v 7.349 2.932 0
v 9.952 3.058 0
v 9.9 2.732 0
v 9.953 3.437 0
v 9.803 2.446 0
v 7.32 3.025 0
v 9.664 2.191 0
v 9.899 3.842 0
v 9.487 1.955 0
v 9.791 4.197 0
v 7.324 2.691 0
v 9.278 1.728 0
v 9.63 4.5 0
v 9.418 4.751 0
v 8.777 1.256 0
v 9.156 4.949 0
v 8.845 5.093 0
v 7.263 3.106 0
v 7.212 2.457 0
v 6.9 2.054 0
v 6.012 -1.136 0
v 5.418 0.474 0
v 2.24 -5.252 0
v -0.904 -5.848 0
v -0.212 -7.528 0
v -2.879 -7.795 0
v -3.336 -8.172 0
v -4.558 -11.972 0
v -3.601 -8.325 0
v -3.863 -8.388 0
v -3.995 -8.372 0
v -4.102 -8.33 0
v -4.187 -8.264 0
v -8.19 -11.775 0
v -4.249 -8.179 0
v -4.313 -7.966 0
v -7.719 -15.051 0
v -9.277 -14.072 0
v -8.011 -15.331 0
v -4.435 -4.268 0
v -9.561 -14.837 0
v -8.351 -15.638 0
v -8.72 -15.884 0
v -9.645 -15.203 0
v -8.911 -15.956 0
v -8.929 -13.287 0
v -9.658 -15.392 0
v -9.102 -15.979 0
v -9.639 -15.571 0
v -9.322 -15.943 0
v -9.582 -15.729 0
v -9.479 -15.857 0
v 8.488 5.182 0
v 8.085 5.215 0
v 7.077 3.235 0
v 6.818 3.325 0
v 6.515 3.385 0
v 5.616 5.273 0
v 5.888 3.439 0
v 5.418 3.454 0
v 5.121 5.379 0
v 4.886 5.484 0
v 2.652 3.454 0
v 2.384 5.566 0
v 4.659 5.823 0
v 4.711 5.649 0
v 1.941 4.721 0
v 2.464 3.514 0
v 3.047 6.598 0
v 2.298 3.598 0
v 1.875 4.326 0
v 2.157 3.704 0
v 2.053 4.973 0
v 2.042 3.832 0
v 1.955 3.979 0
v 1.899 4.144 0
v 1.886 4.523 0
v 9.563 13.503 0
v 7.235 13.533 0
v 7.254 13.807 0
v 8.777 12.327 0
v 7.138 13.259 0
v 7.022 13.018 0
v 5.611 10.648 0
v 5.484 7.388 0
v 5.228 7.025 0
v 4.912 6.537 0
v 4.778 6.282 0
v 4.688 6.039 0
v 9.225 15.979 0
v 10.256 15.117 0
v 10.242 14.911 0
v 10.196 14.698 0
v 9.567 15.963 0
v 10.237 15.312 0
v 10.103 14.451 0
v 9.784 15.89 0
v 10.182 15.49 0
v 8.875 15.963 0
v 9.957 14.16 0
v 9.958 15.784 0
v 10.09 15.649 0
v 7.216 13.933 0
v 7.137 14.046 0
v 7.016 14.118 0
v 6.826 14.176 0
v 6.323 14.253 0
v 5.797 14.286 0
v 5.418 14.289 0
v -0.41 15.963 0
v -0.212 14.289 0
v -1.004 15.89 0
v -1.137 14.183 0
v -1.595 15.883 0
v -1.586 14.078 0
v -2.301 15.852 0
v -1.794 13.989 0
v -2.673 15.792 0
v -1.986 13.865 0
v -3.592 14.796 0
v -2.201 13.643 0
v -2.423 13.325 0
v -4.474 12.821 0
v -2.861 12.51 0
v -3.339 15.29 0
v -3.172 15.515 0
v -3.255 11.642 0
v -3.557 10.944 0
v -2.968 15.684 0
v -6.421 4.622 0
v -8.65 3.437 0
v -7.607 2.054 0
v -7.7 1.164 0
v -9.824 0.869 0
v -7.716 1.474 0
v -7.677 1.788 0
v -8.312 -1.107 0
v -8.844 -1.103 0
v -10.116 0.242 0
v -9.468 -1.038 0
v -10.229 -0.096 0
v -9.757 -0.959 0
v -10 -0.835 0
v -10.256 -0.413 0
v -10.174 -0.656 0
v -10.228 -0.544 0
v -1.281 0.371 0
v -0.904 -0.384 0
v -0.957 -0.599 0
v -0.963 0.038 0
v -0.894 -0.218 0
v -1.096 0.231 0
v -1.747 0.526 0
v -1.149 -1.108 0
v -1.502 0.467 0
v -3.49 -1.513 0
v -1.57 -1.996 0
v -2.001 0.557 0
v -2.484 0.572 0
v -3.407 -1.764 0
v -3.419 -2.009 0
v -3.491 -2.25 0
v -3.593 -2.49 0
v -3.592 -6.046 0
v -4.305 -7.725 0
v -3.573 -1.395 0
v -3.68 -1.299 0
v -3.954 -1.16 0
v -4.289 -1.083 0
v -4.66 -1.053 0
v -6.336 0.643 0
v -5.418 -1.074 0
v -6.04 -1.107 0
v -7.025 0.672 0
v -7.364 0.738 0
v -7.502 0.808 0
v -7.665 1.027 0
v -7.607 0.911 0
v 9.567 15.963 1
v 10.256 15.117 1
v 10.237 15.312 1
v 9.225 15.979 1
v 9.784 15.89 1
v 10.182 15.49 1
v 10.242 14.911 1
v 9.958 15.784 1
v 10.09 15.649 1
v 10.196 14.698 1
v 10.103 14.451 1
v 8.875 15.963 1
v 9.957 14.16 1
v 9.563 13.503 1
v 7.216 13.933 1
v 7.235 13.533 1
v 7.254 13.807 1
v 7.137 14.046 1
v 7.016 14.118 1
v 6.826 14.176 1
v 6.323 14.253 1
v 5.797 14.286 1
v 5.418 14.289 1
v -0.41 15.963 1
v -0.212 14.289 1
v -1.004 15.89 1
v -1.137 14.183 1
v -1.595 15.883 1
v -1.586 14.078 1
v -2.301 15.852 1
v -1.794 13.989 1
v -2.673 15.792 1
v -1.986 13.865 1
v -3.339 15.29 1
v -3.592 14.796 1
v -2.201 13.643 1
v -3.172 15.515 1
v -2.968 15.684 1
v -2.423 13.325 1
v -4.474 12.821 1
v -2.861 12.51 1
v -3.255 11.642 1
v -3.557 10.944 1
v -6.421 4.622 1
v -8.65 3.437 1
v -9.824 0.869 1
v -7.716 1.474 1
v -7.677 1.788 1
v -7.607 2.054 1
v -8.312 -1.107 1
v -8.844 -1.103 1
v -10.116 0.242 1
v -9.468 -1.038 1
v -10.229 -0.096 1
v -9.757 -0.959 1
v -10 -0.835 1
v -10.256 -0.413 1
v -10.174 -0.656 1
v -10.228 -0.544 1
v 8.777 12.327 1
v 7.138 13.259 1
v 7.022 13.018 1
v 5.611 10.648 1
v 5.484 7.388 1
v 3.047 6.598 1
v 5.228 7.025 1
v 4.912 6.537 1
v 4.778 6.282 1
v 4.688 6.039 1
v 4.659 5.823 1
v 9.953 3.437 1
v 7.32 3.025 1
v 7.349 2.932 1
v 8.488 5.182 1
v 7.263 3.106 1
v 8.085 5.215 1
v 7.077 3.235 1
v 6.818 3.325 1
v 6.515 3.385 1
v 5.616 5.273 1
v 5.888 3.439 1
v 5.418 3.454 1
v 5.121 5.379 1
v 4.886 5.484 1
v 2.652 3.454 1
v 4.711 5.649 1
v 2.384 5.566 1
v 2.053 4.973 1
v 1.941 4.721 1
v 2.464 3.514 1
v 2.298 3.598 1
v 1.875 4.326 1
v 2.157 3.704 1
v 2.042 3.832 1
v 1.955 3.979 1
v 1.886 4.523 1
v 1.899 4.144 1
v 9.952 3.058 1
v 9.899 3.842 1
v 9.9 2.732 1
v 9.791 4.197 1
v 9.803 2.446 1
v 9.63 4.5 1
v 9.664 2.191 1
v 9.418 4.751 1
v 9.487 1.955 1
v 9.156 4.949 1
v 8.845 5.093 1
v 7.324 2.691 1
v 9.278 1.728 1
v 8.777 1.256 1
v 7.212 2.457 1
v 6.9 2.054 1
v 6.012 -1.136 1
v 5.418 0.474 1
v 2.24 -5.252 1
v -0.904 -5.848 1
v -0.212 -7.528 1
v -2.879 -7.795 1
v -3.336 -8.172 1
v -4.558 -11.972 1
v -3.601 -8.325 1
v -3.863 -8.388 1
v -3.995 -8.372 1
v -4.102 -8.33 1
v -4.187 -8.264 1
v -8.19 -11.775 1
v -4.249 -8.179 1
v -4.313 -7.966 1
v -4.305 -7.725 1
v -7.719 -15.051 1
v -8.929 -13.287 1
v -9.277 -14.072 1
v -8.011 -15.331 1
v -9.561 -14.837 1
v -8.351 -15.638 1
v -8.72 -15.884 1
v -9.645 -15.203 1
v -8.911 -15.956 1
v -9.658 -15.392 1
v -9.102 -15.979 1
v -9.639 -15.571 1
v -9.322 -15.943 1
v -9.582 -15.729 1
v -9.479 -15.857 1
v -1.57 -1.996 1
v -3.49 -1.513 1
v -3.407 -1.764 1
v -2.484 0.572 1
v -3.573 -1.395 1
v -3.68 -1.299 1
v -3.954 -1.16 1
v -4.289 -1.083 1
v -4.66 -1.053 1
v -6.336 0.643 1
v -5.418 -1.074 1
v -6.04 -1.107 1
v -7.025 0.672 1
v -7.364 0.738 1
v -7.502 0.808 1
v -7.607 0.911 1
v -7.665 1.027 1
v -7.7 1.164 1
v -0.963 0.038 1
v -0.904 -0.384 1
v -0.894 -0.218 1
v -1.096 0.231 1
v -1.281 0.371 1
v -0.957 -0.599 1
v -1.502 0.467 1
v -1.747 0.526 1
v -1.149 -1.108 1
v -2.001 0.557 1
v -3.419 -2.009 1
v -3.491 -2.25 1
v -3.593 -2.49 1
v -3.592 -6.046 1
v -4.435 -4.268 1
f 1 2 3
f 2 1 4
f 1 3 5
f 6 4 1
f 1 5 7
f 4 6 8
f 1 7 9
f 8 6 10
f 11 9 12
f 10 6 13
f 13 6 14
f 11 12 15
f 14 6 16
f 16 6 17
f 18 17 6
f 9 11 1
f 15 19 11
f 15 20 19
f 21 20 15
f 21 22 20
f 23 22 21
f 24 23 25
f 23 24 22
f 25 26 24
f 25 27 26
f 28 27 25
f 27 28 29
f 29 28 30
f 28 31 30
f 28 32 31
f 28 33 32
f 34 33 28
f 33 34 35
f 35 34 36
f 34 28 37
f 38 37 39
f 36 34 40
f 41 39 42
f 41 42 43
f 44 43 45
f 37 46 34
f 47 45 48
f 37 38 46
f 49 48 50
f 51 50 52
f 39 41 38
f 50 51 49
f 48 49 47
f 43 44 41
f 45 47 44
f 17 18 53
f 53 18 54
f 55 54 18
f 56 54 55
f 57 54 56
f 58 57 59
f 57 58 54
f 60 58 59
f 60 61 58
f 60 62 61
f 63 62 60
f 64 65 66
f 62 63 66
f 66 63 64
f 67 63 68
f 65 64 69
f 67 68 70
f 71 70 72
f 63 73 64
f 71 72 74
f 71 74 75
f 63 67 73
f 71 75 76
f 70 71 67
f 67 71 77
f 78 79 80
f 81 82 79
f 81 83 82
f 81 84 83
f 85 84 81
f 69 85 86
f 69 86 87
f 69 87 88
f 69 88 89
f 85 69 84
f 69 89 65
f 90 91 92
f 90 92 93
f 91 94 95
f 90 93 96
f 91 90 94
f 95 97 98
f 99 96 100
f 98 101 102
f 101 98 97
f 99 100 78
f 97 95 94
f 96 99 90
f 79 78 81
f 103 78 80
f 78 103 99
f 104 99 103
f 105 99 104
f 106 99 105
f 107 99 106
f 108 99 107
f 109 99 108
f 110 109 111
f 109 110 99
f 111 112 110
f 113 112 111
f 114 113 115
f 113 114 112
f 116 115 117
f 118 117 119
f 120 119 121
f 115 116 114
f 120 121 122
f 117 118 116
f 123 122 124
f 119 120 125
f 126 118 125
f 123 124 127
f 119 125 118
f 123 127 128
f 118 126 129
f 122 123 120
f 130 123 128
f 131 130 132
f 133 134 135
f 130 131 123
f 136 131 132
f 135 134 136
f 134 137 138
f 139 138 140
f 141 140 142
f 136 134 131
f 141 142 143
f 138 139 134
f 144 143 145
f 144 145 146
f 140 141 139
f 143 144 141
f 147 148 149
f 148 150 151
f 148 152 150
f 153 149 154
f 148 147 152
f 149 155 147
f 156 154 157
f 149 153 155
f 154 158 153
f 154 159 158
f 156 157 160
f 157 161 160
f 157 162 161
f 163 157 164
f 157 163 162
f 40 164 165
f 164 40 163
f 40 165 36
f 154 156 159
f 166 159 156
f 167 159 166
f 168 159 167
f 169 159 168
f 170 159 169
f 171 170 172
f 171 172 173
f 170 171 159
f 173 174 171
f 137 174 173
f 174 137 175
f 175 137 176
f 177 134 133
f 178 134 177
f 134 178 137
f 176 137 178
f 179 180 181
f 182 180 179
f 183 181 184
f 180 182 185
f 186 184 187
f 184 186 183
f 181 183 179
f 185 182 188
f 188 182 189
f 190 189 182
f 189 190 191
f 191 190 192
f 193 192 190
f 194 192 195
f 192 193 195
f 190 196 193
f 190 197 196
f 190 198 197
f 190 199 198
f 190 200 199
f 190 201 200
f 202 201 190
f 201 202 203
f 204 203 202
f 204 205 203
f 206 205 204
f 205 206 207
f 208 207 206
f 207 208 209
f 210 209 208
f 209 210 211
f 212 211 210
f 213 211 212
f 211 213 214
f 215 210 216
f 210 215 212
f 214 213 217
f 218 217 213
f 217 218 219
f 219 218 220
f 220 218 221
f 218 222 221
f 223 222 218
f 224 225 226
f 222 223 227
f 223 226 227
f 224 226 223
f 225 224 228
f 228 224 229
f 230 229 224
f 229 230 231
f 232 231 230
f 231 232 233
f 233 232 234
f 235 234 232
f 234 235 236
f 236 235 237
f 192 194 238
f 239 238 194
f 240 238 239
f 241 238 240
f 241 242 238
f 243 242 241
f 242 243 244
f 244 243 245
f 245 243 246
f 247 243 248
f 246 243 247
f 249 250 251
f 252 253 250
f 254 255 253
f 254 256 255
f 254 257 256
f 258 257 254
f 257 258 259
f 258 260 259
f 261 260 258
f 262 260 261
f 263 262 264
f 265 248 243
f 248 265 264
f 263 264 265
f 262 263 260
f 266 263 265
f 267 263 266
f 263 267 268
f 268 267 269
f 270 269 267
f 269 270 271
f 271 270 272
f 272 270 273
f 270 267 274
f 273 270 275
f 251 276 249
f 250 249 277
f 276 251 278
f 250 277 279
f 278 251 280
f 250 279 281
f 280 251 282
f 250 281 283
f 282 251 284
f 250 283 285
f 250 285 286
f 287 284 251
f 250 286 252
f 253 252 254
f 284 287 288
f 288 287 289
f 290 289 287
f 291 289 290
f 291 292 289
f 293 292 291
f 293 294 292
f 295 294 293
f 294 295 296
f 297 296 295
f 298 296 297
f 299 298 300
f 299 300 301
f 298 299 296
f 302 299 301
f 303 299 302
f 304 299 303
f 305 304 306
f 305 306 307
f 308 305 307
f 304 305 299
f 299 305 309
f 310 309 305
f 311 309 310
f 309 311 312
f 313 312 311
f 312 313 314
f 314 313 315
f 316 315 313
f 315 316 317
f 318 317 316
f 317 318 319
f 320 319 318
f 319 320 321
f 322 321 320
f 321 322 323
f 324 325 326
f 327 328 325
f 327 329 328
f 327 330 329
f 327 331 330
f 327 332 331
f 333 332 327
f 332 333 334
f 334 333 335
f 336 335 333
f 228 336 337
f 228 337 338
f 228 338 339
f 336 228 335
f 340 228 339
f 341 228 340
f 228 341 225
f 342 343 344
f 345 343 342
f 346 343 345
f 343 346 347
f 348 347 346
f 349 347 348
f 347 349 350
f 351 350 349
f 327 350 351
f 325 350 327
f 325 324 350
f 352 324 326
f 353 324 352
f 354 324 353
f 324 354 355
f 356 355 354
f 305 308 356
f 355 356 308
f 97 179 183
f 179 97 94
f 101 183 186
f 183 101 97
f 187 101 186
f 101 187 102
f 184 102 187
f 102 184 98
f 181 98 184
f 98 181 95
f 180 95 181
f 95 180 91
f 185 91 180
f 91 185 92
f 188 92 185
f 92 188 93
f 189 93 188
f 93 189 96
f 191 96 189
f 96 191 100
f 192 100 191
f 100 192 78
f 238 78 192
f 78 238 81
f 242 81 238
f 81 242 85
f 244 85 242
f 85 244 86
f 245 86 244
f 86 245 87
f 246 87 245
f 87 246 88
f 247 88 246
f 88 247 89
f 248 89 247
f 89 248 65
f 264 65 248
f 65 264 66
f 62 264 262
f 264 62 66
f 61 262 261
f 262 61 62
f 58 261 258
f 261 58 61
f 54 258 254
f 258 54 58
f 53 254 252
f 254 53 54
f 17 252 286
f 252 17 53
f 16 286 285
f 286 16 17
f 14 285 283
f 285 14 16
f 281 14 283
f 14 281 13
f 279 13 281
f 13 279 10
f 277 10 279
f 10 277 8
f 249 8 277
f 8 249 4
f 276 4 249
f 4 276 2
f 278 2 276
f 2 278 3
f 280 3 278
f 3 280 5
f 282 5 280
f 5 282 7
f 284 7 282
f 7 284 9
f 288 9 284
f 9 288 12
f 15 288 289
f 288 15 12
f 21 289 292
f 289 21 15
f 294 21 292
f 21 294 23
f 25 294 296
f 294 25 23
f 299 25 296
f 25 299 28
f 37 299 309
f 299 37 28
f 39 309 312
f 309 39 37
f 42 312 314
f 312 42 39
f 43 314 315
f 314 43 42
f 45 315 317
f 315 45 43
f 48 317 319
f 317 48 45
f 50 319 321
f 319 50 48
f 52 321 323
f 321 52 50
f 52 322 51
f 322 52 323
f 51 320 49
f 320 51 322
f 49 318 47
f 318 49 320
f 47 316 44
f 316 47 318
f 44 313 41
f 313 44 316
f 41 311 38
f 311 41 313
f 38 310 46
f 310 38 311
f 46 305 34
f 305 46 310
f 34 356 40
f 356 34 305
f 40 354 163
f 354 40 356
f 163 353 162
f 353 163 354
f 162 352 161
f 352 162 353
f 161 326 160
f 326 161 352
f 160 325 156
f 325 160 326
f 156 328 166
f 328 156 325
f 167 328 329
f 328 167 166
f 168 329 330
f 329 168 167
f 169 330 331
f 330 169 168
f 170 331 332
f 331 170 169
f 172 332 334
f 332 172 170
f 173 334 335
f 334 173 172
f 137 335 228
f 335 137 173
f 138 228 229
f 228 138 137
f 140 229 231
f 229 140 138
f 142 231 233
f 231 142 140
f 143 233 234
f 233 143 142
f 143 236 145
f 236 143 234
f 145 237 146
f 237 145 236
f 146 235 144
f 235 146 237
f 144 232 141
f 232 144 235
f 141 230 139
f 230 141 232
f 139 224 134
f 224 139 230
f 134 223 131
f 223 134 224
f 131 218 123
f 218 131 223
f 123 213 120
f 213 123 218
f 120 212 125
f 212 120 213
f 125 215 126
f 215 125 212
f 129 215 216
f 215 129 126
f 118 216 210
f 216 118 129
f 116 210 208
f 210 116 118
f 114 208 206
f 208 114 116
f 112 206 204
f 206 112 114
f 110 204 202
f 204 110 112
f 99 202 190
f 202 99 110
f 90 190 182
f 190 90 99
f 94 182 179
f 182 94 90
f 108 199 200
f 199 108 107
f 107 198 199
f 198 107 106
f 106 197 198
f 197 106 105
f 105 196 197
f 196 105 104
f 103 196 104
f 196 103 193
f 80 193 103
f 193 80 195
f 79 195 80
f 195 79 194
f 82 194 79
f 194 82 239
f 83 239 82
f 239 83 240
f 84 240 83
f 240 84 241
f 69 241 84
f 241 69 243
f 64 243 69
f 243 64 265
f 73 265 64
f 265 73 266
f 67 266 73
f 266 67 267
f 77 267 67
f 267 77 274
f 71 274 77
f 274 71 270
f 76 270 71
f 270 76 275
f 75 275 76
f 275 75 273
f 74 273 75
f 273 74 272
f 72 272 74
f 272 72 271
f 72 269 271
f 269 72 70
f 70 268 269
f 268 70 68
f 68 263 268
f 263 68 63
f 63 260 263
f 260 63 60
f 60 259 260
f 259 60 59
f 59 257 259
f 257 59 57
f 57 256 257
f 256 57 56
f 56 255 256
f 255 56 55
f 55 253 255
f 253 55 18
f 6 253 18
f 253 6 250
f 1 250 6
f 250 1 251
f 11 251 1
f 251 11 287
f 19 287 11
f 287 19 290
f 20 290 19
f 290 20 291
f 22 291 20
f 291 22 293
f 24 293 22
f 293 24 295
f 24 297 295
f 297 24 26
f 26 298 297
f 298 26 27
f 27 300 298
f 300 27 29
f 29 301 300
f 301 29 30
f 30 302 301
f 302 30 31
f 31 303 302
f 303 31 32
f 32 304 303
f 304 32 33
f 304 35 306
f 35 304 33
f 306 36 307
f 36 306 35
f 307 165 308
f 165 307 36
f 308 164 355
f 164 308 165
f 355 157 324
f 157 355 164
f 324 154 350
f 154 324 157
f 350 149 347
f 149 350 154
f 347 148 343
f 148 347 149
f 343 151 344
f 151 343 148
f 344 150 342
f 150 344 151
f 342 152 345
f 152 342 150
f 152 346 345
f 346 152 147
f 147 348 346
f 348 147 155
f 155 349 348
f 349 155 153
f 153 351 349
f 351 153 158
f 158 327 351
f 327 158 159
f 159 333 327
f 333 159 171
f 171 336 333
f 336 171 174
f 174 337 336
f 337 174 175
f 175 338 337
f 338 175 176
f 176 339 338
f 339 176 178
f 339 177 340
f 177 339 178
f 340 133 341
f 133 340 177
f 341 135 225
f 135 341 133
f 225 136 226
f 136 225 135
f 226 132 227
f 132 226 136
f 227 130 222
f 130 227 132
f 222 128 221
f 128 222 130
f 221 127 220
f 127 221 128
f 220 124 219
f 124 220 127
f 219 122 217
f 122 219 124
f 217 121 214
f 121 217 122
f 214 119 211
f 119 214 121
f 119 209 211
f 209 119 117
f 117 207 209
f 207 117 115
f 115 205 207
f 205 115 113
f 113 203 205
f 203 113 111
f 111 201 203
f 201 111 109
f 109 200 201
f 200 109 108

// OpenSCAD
// file: lightning-bolt.scad
// Module names are of the form poly_<inkscape-path-id>().  As a result,
// you can associate a polygon in this OpenSCAD program with the corresponding
// SVG element in the Inkscape document by looking for the XML element with
// the attribute id="inkscape-path-id".

// fudge value is used to ensure that subtracted solids are a tad taller
// in the z dimension than the polygon being subtracted from.  This helps
// keep the resulting .stl file manifold.
fudge = 0.1;

module poly_Selection(h)
{
  scale([25.4/90, -25.4/90, 1]) union()
  {
    difference()
    {
       linear_extrude(height=h)
         polygon([[-4.148906,-161.604375],[29.851094,-161.604375],[89.851094,-161.604375],[93.388594,-161.765625],[96.851094,-161.604375],[99.052539,-160.861992],[100.810781,-159.788437],[102.146680,-158.426602],[103.081094,-156.819375],[103.634883,-155.009648],[103.828906,-153.040312],[103.684023,-150.954258],[103.221094,-148.794375],[102.277969,-146.302969],[100.798594,-143.351250],[96.816094,-136.696875],[88.851094,-124.794375],[55.521094,-74.794375],[52.930781,-71.123125],[49.723594,-66.176875],[48.375586,-63.594766],[47.457656,-61.136875],[47.164570,-58.950859],[47.691094,-57.184375],[49.468281,-55.523281],[51.843594,-54.455625],[56.851094,-53.384375],[81.851094,-52.794375],[85.930117,-52.456934],[89.547656,-51.555469],[92.689414,-50.098770],[95.341094,-48.095625],[97.488398,-45.554824],[99.117031,-42.485156],[100.212695,-38.895410],[100.761094,-34.794375],[100.747676,-30.961406],[100.226250,-27.654375],[99.240059,-24.763594],[97.832344,-22.179375],[96.046348,-19.792031],[93.925313,-17.491875],[88.851094,-12.714375],[60.861094,11.495625],[22.681094,53.165625],[-2.148906,76.215625],[-46.148906,121.205625],[-78.148906,152.375625],[-81.104219,155.211094],[-84.541406,158.319375],[-88.282344,160.803281],[-90.211055,161.530723],[-92.148906,161.765625],[-94.372402,161.407539],[-95.966250,160.530312],[-97.010488,159.238242],[-97.585156,157.635625],[-97.770293,155.826758],[-97.645937,153.915937],[-96.788906,150.205625],[-93.919844,142.465000],[-90.396406,134.510625],[-82.908906,119.205625],[-44.898906,43.205625],[-36.378906,25.205625],[-35.345781,22.782813],[-34.608906,20.343125],[-34.494531,17.862187],[-35.328906,15.315625],[-36.170610,14.127329],[-37.254570,13.148945],[-40.029844,11.748437],[-43.415898,10.967148],[-47.173906,10.658125],[-54.850469,10.869062],[-61.148906,11.205625],[-84.148906,11.205625],[-89.537187,11.162031],[-95.852656,10.511875],[-98.777129,9.708848],[-101.236250,8.453594],[-102.997637,6.645918],[-103.544060,5.503611],[-103.828906,4.185625],[-103.551094,0.976250],[-102.416406,-2.454375],[-99.458906,-8.794375],[-87.568906,-34.794375],[-45.288906,-129.794375],[-36.368906,-149.794375],[-33.801406,-154.788125],[-32.116406,-157.068906],[-30.048906,-158.784375],[-27.055781,-159.877500],[-23.293906,-160.479375],[-16.148906,-160.794375],[-10.167656,-160.861875],[-4.148906,-161.604375]]);
       translate([0, 0, -fudge])
         linear_extrude(height=h+2*fudge)
           polygon([[-2.148906,-144.654375],[-11.515156,-143.585625],[-16.058125,-142.526719],[-18.163730,-141.618809],[-20.108906,-140.364375],[-22.284258,-138.120078],[-24.525469,-134.897500],[-28.966406,-126.644375],[-32.953594,-117.858750],[-36.008906,-110.794375],[-65.008906,-46.794375],[-77.008906,-20.794375],[-77.717656,-18.100625],[-78.111406,-14.919375],[-77.953906,-11.783125],[-77.594609,-10.398281],[-77.008906,-9.224375],[-75.949375,-8.181387],[-74.555156,-7.474844],[-71.118906,-6.800625],[-64.148906,-6.514375],[-25.148906,-5.794375],[-20.262344,-5.639844],[-17.686992,-5.320645],[-15.208906,-4.723125],[-12.967070,-3.759512],[-11.100469,-2.342031],[-9.748086,-0.382910],[-9.048906,2.205625],[-9.148008,3.888379],[-9.686094,6.060156],[-11.633906,11.216875],[-15.898906,20.205625],[-36.368906,61.205625],[-43.578906,78.205625],[-43.665156,80.649063],[-43.016406,82.798125],[-42.384766,83.660898],[-41.531406,84.328437],[-40.443672,84.760195],[-39.108906,84.915625],[-36.457187,84.283281],[-33.772656,82.729375],[-29.148906,78.915625],[-9.148906,59.205625],[54.851094,-4.794375],[69.851094,-20.794375],[73.011094,-24.875625],[74.145781,-27.247656],[74.401094,-29.684375],[74.109907,-30.624995],[73.529883,-31.442773],[71.644531,-32.745312],[69.027461,-33.663008],[65.961094,-34.266875],[59.610156,-34.817188],[54.851094,-34.964375],[26.851094,-34.964375],[24.944707,-35.570820],[23.266250,-36.420312],[21.835527,-37.498086],[20.672344,-38.789375],[19.796504,-40.279414],[19.227813,-41.953437],[18.986074,-43.796680],[19.091094,-45.794375],[19.653008,-47.792656],[20.785156,-50.341250],[24.138594,-56.346875],[30.851094,-66.794375],[56.801094,-107.794375],[71.091094,-131.794375],[72.260937,-134.232188],[73.242344,-137.009375],[73.438125,-139.779062],[73.054785,-141.052695],[72.251094,-142.194375],[71.029297,-142.931309],[69.104844,-143.516719],[64.008594,-144.290625],[58.683594,-144.631406],[54.851094,-144.654375],[-2.148906,-144.654375]]);
    }
  }
}

module lightningBolt(height = 1,
                     showBackground = false)
{
    scaleFactor = 0.35;
    scale([scaleFactor, 
          scaleFactor + 0.0, 
           1])
    poly_Selection(height);

    if(showBackground)
    {
        color("green")
        cube([20.6, 32, height], center = true);
    }    
}
// main file
use <lightning-bolt.scad>

lightningBolt(h = 2
    // , showBackground = true
);
